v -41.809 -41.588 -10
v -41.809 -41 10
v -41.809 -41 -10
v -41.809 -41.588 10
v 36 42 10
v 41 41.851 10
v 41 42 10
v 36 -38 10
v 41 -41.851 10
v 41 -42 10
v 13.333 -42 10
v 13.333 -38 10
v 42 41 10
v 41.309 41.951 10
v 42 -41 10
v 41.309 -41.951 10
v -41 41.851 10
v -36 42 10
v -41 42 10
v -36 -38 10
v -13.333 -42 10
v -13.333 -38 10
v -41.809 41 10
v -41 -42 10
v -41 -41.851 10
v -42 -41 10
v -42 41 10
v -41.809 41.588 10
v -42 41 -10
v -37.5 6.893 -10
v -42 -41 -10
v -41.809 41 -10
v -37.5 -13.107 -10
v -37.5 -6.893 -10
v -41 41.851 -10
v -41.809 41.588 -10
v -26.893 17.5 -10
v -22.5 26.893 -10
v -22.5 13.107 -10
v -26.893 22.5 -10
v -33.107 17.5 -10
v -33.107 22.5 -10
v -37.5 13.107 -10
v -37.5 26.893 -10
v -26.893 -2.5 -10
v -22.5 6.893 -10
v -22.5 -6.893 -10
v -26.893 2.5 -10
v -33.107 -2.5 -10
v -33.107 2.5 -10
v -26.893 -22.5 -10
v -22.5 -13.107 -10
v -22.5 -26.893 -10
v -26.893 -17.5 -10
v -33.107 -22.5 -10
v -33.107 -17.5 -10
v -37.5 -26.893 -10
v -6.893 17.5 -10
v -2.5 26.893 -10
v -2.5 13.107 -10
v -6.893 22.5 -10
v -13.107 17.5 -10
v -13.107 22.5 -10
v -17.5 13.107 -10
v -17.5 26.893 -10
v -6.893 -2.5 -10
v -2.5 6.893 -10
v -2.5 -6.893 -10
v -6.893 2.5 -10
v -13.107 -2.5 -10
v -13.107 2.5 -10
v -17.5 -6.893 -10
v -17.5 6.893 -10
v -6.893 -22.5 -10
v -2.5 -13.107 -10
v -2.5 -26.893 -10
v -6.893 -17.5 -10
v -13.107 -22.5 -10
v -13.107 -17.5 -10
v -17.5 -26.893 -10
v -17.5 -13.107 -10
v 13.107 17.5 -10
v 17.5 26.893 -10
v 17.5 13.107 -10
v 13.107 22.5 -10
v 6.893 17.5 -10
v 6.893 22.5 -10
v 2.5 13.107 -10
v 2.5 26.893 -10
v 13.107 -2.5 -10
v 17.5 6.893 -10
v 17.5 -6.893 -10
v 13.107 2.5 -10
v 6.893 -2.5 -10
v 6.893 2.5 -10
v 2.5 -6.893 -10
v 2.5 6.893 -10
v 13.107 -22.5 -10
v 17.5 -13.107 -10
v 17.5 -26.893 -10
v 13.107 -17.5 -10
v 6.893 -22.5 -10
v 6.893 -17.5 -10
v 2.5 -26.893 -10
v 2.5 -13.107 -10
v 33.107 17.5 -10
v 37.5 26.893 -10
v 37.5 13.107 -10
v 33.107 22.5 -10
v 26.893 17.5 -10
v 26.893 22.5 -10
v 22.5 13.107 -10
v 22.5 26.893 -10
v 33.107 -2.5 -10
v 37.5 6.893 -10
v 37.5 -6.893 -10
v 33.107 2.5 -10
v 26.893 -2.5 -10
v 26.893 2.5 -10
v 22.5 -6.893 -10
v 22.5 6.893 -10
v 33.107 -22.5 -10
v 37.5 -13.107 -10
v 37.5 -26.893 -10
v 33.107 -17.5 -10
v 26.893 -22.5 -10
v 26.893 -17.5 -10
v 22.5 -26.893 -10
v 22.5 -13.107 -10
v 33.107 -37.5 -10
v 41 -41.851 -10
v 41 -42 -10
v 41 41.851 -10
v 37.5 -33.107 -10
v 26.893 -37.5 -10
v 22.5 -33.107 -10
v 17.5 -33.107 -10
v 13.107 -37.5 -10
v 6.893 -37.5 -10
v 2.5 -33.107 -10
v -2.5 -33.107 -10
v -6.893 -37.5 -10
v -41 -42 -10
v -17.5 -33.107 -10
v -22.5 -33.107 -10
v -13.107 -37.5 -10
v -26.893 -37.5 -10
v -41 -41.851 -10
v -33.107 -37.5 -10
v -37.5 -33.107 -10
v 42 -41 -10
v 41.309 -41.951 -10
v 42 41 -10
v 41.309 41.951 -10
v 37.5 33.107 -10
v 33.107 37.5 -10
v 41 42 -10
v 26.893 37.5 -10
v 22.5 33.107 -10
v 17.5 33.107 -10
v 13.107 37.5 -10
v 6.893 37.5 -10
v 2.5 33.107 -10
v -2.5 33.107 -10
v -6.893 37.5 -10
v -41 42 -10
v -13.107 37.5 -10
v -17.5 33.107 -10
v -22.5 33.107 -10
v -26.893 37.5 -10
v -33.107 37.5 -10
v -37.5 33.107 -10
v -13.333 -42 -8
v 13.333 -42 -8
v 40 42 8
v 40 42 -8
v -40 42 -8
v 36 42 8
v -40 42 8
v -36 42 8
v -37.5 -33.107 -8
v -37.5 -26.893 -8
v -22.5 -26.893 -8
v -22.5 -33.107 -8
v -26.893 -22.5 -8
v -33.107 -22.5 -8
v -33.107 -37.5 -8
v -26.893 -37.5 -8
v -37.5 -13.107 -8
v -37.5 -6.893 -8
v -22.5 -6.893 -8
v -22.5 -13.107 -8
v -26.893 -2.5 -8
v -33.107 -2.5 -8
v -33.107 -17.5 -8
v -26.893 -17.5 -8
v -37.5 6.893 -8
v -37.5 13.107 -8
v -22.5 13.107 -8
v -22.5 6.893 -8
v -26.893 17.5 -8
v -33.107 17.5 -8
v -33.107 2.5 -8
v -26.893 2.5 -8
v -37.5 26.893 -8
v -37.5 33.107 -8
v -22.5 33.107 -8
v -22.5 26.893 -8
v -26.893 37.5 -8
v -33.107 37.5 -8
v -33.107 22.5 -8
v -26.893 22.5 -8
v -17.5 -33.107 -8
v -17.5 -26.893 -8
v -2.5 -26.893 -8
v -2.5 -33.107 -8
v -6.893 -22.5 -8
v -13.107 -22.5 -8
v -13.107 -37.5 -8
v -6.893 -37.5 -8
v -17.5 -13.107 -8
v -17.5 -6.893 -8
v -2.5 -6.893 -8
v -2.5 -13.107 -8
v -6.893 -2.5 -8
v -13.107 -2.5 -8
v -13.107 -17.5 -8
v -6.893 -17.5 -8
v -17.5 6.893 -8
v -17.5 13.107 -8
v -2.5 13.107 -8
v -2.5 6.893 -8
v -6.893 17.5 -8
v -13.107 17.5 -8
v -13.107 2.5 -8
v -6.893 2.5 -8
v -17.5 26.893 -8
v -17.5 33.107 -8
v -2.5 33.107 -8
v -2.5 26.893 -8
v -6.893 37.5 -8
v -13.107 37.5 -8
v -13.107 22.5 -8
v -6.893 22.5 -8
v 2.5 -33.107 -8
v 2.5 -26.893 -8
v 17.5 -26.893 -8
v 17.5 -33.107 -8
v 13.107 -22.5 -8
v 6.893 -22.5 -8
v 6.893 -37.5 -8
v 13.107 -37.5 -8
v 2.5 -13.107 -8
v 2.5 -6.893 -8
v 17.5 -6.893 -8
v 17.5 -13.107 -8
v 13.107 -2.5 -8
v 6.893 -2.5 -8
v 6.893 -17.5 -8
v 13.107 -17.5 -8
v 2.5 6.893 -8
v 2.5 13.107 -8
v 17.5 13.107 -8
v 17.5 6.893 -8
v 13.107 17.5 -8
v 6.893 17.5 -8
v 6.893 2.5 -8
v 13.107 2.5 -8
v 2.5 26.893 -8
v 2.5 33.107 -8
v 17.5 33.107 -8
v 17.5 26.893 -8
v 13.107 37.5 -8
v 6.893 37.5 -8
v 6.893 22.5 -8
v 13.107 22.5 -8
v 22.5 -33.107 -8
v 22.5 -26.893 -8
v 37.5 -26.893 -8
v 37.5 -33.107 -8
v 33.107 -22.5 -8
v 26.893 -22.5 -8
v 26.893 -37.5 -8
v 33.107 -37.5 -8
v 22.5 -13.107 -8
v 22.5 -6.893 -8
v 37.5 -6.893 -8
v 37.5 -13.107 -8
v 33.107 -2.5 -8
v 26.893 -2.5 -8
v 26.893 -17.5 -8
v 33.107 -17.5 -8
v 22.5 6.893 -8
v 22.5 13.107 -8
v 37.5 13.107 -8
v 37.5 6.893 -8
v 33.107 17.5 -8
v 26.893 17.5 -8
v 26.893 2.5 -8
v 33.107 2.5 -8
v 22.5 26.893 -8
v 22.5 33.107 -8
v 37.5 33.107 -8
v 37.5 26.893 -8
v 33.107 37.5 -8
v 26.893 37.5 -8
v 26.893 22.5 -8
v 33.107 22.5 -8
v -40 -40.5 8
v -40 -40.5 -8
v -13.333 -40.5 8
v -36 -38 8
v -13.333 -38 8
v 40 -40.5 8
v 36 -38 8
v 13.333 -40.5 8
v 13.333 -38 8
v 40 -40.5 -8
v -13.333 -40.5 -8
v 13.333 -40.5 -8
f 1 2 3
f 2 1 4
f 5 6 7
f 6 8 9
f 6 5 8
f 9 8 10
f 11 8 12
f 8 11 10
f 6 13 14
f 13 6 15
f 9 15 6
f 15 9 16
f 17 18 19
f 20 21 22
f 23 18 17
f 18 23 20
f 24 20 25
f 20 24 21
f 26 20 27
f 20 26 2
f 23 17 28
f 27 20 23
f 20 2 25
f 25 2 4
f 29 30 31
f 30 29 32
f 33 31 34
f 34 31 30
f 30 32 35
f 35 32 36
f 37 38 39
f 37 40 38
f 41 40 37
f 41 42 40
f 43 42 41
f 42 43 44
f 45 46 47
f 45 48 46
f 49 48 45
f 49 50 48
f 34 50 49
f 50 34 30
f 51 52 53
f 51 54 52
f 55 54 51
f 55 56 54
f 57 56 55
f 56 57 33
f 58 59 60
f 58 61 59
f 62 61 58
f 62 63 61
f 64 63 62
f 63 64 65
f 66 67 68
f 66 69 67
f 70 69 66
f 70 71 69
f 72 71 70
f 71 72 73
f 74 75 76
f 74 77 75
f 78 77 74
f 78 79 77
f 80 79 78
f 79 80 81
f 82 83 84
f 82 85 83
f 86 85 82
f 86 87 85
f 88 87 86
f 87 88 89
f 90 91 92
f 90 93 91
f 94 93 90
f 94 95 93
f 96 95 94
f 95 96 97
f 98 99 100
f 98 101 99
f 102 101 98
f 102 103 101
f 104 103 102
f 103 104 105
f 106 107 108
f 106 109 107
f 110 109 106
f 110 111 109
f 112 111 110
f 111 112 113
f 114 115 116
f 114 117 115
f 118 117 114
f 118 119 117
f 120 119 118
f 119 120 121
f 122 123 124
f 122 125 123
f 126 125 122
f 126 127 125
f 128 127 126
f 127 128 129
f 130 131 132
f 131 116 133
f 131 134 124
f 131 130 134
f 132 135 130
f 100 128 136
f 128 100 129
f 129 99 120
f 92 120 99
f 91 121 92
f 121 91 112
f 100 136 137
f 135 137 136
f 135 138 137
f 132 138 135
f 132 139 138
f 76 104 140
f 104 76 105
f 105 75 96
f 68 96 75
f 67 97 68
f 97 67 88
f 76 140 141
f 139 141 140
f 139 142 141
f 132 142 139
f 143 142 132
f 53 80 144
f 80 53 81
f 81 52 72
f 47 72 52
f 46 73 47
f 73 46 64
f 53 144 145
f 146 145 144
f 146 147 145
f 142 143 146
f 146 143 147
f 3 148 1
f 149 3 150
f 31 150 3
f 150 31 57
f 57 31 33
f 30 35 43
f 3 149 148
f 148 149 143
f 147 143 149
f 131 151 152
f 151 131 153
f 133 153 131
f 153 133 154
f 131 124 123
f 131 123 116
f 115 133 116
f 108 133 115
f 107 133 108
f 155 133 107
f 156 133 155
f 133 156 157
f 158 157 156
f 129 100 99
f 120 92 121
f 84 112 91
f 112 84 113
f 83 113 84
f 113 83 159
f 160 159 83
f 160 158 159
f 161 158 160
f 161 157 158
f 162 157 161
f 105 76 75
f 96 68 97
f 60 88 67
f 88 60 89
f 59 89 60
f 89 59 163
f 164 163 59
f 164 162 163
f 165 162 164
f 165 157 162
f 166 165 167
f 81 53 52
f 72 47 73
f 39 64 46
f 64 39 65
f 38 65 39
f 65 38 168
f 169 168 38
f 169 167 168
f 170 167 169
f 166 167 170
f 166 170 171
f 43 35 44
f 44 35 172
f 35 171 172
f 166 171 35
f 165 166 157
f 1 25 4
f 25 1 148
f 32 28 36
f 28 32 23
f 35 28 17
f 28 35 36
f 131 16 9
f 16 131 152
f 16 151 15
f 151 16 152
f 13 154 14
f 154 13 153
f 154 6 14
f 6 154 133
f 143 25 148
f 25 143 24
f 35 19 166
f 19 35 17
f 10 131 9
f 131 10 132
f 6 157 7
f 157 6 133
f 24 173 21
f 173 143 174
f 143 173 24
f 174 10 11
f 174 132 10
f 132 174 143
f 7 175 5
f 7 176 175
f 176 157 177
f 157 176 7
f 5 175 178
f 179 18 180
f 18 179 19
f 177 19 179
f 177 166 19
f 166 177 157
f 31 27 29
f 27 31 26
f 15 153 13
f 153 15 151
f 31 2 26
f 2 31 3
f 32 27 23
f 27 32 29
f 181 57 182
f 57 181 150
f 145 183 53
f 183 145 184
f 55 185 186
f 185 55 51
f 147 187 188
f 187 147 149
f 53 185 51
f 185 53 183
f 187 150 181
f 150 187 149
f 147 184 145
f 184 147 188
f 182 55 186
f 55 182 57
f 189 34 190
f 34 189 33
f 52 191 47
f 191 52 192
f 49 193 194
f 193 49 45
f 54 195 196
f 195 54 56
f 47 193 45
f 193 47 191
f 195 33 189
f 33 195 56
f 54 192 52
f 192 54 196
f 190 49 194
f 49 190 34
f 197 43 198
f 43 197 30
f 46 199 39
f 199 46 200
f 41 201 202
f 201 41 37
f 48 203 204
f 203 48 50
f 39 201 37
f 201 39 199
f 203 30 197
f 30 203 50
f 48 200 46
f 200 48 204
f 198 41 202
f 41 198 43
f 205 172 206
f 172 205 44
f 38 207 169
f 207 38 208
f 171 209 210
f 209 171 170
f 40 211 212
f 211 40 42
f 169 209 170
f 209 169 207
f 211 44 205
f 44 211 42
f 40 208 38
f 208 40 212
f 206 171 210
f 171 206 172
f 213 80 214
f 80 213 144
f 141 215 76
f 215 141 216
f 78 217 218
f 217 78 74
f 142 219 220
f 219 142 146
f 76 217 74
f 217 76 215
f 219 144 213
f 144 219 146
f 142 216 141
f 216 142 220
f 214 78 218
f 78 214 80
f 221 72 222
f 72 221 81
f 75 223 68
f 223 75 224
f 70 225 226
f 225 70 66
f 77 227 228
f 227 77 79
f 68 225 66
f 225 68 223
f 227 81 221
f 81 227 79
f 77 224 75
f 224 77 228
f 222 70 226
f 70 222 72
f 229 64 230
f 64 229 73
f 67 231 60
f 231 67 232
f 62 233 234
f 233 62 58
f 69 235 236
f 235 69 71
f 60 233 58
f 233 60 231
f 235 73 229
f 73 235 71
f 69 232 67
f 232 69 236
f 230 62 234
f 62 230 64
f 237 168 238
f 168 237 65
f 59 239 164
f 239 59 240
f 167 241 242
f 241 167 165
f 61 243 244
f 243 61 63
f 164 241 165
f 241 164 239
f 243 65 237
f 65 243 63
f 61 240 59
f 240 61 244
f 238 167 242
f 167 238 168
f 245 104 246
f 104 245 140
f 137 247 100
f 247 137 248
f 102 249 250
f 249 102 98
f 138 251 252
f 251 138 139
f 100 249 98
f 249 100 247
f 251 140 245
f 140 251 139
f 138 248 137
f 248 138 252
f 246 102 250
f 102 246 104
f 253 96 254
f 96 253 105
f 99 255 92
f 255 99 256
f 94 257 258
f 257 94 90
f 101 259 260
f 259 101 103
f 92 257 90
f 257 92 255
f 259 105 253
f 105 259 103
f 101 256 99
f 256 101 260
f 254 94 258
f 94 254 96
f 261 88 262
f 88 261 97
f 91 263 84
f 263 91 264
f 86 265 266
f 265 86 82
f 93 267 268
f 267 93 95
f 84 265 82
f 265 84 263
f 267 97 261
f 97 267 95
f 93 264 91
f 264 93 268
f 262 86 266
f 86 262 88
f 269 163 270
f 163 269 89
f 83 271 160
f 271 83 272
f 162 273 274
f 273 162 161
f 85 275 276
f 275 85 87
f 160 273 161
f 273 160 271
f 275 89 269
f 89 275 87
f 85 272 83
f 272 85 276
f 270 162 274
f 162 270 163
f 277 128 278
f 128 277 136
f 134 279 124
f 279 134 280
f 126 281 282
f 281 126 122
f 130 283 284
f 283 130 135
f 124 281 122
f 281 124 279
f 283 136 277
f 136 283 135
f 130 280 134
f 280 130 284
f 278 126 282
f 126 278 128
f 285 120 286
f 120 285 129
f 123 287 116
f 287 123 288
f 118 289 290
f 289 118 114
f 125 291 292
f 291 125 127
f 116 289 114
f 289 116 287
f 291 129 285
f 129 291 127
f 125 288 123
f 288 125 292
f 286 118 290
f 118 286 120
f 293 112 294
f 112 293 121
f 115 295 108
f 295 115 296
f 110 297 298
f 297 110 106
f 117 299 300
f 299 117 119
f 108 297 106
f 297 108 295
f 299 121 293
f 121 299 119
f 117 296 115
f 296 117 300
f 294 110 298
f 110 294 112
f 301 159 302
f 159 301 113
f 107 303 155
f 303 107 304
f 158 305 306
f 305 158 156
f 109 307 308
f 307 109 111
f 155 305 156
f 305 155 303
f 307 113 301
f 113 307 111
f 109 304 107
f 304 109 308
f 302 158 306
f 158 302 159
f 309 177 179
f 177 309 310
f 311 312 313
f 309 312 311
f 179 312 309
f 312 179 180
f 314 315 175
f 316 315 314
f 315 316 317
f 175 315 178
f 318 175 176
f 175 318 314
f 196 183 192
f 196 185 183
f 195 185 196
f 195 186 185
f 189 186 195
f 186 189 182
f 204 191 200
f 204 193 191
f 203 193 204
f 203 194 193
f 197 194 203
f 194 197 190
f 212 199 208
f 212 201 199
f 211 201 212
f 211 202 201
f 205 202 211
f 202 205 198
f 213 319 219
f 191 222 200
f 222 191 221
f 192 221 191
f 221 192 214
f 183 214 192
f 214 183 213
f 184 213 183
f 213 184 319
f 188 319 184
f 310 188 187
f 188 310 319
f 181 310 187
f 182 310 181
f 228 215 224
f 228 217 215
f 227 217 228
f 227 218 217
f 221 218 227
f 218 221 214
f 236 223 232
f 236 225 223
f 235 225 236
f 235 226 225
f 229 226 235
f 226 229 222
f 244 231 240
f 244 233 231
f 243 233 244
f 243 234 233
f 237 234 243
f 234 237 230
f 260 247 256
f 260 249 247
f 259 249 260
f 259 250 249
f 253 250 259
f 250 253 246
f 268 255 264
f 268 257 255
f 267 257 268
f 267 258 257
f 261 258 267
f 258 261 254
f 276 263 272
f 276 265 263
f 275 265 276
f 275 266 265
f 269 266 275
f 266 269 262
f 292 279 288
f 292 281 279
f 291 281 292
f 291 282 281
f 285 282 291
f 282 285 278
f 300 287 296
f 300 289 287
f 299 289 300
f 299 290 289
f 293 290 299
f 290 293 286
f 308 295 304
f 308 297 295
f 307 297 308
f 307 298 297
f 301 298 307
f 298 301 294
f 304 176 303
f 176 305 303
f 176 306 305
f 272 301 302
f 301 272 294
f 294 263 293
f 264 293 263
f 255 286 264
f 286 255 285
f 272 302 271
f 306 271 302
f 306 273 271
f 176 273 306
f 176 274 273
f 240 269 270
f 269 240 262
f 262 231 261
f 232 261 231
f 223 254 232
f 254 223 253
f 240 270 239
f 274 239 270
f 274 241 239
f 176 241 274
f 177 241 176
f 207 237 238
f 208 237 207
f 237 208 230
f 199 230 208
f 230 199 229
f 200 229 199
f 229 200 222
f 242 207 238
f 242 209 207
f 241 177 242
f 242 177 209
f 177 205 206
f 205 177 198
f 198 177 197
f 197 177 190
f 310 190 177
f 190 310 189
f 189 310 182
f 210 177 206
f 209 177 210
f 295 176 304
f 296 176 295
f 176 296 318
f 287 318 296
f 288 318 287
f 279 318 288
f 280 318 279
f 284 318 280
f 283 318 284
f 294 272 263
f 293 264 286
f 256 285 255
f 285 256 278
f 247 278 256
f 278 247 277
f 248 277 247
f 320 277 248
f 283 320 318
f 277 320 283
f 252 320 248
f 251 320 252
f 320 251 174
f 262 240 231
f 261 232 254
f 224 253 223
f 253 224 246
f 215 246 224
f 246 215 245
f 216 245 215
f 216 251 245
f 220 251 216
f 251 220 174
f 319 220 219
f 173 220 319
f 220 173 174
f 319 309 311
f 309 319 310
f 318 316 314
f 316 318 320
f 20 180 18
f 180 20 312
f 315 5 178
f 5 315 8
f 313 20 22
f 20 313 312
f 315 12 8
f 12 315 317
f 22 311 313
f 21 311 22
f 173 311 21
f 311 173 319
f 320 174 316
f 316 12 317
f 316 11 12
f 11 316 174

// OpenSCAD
use <MCAD/shapes.scad>

thickness = 2;
size = 80;
h = 20;
radius = 1;


difference() {
    // Outer box
    roundedBox(size + 2 * thickness, size + 2 * thickness, h, 1);
    

    // Inner space
    translate([0, thickness, 0]) {
        box(size, size + 5, h - 2 * thickness);
    }
    
    // Inner space
    translate([0, thickness, thickness]) {
        box(size * 0.9, size, h);
    }
    
    // Cable stub
    translate([0, - size / 3 - thickness, thickness]) {
        box(size / 3, size / 3, h);
    }
    
    
    translate([-30, -30, -h/2]) {
        for (i = [0:size / 4:size - 1], j = [0: size / 4: size - 1]) {
            translate([i, j, 0]) octagon(15, h / 2);
        }
    }
}
